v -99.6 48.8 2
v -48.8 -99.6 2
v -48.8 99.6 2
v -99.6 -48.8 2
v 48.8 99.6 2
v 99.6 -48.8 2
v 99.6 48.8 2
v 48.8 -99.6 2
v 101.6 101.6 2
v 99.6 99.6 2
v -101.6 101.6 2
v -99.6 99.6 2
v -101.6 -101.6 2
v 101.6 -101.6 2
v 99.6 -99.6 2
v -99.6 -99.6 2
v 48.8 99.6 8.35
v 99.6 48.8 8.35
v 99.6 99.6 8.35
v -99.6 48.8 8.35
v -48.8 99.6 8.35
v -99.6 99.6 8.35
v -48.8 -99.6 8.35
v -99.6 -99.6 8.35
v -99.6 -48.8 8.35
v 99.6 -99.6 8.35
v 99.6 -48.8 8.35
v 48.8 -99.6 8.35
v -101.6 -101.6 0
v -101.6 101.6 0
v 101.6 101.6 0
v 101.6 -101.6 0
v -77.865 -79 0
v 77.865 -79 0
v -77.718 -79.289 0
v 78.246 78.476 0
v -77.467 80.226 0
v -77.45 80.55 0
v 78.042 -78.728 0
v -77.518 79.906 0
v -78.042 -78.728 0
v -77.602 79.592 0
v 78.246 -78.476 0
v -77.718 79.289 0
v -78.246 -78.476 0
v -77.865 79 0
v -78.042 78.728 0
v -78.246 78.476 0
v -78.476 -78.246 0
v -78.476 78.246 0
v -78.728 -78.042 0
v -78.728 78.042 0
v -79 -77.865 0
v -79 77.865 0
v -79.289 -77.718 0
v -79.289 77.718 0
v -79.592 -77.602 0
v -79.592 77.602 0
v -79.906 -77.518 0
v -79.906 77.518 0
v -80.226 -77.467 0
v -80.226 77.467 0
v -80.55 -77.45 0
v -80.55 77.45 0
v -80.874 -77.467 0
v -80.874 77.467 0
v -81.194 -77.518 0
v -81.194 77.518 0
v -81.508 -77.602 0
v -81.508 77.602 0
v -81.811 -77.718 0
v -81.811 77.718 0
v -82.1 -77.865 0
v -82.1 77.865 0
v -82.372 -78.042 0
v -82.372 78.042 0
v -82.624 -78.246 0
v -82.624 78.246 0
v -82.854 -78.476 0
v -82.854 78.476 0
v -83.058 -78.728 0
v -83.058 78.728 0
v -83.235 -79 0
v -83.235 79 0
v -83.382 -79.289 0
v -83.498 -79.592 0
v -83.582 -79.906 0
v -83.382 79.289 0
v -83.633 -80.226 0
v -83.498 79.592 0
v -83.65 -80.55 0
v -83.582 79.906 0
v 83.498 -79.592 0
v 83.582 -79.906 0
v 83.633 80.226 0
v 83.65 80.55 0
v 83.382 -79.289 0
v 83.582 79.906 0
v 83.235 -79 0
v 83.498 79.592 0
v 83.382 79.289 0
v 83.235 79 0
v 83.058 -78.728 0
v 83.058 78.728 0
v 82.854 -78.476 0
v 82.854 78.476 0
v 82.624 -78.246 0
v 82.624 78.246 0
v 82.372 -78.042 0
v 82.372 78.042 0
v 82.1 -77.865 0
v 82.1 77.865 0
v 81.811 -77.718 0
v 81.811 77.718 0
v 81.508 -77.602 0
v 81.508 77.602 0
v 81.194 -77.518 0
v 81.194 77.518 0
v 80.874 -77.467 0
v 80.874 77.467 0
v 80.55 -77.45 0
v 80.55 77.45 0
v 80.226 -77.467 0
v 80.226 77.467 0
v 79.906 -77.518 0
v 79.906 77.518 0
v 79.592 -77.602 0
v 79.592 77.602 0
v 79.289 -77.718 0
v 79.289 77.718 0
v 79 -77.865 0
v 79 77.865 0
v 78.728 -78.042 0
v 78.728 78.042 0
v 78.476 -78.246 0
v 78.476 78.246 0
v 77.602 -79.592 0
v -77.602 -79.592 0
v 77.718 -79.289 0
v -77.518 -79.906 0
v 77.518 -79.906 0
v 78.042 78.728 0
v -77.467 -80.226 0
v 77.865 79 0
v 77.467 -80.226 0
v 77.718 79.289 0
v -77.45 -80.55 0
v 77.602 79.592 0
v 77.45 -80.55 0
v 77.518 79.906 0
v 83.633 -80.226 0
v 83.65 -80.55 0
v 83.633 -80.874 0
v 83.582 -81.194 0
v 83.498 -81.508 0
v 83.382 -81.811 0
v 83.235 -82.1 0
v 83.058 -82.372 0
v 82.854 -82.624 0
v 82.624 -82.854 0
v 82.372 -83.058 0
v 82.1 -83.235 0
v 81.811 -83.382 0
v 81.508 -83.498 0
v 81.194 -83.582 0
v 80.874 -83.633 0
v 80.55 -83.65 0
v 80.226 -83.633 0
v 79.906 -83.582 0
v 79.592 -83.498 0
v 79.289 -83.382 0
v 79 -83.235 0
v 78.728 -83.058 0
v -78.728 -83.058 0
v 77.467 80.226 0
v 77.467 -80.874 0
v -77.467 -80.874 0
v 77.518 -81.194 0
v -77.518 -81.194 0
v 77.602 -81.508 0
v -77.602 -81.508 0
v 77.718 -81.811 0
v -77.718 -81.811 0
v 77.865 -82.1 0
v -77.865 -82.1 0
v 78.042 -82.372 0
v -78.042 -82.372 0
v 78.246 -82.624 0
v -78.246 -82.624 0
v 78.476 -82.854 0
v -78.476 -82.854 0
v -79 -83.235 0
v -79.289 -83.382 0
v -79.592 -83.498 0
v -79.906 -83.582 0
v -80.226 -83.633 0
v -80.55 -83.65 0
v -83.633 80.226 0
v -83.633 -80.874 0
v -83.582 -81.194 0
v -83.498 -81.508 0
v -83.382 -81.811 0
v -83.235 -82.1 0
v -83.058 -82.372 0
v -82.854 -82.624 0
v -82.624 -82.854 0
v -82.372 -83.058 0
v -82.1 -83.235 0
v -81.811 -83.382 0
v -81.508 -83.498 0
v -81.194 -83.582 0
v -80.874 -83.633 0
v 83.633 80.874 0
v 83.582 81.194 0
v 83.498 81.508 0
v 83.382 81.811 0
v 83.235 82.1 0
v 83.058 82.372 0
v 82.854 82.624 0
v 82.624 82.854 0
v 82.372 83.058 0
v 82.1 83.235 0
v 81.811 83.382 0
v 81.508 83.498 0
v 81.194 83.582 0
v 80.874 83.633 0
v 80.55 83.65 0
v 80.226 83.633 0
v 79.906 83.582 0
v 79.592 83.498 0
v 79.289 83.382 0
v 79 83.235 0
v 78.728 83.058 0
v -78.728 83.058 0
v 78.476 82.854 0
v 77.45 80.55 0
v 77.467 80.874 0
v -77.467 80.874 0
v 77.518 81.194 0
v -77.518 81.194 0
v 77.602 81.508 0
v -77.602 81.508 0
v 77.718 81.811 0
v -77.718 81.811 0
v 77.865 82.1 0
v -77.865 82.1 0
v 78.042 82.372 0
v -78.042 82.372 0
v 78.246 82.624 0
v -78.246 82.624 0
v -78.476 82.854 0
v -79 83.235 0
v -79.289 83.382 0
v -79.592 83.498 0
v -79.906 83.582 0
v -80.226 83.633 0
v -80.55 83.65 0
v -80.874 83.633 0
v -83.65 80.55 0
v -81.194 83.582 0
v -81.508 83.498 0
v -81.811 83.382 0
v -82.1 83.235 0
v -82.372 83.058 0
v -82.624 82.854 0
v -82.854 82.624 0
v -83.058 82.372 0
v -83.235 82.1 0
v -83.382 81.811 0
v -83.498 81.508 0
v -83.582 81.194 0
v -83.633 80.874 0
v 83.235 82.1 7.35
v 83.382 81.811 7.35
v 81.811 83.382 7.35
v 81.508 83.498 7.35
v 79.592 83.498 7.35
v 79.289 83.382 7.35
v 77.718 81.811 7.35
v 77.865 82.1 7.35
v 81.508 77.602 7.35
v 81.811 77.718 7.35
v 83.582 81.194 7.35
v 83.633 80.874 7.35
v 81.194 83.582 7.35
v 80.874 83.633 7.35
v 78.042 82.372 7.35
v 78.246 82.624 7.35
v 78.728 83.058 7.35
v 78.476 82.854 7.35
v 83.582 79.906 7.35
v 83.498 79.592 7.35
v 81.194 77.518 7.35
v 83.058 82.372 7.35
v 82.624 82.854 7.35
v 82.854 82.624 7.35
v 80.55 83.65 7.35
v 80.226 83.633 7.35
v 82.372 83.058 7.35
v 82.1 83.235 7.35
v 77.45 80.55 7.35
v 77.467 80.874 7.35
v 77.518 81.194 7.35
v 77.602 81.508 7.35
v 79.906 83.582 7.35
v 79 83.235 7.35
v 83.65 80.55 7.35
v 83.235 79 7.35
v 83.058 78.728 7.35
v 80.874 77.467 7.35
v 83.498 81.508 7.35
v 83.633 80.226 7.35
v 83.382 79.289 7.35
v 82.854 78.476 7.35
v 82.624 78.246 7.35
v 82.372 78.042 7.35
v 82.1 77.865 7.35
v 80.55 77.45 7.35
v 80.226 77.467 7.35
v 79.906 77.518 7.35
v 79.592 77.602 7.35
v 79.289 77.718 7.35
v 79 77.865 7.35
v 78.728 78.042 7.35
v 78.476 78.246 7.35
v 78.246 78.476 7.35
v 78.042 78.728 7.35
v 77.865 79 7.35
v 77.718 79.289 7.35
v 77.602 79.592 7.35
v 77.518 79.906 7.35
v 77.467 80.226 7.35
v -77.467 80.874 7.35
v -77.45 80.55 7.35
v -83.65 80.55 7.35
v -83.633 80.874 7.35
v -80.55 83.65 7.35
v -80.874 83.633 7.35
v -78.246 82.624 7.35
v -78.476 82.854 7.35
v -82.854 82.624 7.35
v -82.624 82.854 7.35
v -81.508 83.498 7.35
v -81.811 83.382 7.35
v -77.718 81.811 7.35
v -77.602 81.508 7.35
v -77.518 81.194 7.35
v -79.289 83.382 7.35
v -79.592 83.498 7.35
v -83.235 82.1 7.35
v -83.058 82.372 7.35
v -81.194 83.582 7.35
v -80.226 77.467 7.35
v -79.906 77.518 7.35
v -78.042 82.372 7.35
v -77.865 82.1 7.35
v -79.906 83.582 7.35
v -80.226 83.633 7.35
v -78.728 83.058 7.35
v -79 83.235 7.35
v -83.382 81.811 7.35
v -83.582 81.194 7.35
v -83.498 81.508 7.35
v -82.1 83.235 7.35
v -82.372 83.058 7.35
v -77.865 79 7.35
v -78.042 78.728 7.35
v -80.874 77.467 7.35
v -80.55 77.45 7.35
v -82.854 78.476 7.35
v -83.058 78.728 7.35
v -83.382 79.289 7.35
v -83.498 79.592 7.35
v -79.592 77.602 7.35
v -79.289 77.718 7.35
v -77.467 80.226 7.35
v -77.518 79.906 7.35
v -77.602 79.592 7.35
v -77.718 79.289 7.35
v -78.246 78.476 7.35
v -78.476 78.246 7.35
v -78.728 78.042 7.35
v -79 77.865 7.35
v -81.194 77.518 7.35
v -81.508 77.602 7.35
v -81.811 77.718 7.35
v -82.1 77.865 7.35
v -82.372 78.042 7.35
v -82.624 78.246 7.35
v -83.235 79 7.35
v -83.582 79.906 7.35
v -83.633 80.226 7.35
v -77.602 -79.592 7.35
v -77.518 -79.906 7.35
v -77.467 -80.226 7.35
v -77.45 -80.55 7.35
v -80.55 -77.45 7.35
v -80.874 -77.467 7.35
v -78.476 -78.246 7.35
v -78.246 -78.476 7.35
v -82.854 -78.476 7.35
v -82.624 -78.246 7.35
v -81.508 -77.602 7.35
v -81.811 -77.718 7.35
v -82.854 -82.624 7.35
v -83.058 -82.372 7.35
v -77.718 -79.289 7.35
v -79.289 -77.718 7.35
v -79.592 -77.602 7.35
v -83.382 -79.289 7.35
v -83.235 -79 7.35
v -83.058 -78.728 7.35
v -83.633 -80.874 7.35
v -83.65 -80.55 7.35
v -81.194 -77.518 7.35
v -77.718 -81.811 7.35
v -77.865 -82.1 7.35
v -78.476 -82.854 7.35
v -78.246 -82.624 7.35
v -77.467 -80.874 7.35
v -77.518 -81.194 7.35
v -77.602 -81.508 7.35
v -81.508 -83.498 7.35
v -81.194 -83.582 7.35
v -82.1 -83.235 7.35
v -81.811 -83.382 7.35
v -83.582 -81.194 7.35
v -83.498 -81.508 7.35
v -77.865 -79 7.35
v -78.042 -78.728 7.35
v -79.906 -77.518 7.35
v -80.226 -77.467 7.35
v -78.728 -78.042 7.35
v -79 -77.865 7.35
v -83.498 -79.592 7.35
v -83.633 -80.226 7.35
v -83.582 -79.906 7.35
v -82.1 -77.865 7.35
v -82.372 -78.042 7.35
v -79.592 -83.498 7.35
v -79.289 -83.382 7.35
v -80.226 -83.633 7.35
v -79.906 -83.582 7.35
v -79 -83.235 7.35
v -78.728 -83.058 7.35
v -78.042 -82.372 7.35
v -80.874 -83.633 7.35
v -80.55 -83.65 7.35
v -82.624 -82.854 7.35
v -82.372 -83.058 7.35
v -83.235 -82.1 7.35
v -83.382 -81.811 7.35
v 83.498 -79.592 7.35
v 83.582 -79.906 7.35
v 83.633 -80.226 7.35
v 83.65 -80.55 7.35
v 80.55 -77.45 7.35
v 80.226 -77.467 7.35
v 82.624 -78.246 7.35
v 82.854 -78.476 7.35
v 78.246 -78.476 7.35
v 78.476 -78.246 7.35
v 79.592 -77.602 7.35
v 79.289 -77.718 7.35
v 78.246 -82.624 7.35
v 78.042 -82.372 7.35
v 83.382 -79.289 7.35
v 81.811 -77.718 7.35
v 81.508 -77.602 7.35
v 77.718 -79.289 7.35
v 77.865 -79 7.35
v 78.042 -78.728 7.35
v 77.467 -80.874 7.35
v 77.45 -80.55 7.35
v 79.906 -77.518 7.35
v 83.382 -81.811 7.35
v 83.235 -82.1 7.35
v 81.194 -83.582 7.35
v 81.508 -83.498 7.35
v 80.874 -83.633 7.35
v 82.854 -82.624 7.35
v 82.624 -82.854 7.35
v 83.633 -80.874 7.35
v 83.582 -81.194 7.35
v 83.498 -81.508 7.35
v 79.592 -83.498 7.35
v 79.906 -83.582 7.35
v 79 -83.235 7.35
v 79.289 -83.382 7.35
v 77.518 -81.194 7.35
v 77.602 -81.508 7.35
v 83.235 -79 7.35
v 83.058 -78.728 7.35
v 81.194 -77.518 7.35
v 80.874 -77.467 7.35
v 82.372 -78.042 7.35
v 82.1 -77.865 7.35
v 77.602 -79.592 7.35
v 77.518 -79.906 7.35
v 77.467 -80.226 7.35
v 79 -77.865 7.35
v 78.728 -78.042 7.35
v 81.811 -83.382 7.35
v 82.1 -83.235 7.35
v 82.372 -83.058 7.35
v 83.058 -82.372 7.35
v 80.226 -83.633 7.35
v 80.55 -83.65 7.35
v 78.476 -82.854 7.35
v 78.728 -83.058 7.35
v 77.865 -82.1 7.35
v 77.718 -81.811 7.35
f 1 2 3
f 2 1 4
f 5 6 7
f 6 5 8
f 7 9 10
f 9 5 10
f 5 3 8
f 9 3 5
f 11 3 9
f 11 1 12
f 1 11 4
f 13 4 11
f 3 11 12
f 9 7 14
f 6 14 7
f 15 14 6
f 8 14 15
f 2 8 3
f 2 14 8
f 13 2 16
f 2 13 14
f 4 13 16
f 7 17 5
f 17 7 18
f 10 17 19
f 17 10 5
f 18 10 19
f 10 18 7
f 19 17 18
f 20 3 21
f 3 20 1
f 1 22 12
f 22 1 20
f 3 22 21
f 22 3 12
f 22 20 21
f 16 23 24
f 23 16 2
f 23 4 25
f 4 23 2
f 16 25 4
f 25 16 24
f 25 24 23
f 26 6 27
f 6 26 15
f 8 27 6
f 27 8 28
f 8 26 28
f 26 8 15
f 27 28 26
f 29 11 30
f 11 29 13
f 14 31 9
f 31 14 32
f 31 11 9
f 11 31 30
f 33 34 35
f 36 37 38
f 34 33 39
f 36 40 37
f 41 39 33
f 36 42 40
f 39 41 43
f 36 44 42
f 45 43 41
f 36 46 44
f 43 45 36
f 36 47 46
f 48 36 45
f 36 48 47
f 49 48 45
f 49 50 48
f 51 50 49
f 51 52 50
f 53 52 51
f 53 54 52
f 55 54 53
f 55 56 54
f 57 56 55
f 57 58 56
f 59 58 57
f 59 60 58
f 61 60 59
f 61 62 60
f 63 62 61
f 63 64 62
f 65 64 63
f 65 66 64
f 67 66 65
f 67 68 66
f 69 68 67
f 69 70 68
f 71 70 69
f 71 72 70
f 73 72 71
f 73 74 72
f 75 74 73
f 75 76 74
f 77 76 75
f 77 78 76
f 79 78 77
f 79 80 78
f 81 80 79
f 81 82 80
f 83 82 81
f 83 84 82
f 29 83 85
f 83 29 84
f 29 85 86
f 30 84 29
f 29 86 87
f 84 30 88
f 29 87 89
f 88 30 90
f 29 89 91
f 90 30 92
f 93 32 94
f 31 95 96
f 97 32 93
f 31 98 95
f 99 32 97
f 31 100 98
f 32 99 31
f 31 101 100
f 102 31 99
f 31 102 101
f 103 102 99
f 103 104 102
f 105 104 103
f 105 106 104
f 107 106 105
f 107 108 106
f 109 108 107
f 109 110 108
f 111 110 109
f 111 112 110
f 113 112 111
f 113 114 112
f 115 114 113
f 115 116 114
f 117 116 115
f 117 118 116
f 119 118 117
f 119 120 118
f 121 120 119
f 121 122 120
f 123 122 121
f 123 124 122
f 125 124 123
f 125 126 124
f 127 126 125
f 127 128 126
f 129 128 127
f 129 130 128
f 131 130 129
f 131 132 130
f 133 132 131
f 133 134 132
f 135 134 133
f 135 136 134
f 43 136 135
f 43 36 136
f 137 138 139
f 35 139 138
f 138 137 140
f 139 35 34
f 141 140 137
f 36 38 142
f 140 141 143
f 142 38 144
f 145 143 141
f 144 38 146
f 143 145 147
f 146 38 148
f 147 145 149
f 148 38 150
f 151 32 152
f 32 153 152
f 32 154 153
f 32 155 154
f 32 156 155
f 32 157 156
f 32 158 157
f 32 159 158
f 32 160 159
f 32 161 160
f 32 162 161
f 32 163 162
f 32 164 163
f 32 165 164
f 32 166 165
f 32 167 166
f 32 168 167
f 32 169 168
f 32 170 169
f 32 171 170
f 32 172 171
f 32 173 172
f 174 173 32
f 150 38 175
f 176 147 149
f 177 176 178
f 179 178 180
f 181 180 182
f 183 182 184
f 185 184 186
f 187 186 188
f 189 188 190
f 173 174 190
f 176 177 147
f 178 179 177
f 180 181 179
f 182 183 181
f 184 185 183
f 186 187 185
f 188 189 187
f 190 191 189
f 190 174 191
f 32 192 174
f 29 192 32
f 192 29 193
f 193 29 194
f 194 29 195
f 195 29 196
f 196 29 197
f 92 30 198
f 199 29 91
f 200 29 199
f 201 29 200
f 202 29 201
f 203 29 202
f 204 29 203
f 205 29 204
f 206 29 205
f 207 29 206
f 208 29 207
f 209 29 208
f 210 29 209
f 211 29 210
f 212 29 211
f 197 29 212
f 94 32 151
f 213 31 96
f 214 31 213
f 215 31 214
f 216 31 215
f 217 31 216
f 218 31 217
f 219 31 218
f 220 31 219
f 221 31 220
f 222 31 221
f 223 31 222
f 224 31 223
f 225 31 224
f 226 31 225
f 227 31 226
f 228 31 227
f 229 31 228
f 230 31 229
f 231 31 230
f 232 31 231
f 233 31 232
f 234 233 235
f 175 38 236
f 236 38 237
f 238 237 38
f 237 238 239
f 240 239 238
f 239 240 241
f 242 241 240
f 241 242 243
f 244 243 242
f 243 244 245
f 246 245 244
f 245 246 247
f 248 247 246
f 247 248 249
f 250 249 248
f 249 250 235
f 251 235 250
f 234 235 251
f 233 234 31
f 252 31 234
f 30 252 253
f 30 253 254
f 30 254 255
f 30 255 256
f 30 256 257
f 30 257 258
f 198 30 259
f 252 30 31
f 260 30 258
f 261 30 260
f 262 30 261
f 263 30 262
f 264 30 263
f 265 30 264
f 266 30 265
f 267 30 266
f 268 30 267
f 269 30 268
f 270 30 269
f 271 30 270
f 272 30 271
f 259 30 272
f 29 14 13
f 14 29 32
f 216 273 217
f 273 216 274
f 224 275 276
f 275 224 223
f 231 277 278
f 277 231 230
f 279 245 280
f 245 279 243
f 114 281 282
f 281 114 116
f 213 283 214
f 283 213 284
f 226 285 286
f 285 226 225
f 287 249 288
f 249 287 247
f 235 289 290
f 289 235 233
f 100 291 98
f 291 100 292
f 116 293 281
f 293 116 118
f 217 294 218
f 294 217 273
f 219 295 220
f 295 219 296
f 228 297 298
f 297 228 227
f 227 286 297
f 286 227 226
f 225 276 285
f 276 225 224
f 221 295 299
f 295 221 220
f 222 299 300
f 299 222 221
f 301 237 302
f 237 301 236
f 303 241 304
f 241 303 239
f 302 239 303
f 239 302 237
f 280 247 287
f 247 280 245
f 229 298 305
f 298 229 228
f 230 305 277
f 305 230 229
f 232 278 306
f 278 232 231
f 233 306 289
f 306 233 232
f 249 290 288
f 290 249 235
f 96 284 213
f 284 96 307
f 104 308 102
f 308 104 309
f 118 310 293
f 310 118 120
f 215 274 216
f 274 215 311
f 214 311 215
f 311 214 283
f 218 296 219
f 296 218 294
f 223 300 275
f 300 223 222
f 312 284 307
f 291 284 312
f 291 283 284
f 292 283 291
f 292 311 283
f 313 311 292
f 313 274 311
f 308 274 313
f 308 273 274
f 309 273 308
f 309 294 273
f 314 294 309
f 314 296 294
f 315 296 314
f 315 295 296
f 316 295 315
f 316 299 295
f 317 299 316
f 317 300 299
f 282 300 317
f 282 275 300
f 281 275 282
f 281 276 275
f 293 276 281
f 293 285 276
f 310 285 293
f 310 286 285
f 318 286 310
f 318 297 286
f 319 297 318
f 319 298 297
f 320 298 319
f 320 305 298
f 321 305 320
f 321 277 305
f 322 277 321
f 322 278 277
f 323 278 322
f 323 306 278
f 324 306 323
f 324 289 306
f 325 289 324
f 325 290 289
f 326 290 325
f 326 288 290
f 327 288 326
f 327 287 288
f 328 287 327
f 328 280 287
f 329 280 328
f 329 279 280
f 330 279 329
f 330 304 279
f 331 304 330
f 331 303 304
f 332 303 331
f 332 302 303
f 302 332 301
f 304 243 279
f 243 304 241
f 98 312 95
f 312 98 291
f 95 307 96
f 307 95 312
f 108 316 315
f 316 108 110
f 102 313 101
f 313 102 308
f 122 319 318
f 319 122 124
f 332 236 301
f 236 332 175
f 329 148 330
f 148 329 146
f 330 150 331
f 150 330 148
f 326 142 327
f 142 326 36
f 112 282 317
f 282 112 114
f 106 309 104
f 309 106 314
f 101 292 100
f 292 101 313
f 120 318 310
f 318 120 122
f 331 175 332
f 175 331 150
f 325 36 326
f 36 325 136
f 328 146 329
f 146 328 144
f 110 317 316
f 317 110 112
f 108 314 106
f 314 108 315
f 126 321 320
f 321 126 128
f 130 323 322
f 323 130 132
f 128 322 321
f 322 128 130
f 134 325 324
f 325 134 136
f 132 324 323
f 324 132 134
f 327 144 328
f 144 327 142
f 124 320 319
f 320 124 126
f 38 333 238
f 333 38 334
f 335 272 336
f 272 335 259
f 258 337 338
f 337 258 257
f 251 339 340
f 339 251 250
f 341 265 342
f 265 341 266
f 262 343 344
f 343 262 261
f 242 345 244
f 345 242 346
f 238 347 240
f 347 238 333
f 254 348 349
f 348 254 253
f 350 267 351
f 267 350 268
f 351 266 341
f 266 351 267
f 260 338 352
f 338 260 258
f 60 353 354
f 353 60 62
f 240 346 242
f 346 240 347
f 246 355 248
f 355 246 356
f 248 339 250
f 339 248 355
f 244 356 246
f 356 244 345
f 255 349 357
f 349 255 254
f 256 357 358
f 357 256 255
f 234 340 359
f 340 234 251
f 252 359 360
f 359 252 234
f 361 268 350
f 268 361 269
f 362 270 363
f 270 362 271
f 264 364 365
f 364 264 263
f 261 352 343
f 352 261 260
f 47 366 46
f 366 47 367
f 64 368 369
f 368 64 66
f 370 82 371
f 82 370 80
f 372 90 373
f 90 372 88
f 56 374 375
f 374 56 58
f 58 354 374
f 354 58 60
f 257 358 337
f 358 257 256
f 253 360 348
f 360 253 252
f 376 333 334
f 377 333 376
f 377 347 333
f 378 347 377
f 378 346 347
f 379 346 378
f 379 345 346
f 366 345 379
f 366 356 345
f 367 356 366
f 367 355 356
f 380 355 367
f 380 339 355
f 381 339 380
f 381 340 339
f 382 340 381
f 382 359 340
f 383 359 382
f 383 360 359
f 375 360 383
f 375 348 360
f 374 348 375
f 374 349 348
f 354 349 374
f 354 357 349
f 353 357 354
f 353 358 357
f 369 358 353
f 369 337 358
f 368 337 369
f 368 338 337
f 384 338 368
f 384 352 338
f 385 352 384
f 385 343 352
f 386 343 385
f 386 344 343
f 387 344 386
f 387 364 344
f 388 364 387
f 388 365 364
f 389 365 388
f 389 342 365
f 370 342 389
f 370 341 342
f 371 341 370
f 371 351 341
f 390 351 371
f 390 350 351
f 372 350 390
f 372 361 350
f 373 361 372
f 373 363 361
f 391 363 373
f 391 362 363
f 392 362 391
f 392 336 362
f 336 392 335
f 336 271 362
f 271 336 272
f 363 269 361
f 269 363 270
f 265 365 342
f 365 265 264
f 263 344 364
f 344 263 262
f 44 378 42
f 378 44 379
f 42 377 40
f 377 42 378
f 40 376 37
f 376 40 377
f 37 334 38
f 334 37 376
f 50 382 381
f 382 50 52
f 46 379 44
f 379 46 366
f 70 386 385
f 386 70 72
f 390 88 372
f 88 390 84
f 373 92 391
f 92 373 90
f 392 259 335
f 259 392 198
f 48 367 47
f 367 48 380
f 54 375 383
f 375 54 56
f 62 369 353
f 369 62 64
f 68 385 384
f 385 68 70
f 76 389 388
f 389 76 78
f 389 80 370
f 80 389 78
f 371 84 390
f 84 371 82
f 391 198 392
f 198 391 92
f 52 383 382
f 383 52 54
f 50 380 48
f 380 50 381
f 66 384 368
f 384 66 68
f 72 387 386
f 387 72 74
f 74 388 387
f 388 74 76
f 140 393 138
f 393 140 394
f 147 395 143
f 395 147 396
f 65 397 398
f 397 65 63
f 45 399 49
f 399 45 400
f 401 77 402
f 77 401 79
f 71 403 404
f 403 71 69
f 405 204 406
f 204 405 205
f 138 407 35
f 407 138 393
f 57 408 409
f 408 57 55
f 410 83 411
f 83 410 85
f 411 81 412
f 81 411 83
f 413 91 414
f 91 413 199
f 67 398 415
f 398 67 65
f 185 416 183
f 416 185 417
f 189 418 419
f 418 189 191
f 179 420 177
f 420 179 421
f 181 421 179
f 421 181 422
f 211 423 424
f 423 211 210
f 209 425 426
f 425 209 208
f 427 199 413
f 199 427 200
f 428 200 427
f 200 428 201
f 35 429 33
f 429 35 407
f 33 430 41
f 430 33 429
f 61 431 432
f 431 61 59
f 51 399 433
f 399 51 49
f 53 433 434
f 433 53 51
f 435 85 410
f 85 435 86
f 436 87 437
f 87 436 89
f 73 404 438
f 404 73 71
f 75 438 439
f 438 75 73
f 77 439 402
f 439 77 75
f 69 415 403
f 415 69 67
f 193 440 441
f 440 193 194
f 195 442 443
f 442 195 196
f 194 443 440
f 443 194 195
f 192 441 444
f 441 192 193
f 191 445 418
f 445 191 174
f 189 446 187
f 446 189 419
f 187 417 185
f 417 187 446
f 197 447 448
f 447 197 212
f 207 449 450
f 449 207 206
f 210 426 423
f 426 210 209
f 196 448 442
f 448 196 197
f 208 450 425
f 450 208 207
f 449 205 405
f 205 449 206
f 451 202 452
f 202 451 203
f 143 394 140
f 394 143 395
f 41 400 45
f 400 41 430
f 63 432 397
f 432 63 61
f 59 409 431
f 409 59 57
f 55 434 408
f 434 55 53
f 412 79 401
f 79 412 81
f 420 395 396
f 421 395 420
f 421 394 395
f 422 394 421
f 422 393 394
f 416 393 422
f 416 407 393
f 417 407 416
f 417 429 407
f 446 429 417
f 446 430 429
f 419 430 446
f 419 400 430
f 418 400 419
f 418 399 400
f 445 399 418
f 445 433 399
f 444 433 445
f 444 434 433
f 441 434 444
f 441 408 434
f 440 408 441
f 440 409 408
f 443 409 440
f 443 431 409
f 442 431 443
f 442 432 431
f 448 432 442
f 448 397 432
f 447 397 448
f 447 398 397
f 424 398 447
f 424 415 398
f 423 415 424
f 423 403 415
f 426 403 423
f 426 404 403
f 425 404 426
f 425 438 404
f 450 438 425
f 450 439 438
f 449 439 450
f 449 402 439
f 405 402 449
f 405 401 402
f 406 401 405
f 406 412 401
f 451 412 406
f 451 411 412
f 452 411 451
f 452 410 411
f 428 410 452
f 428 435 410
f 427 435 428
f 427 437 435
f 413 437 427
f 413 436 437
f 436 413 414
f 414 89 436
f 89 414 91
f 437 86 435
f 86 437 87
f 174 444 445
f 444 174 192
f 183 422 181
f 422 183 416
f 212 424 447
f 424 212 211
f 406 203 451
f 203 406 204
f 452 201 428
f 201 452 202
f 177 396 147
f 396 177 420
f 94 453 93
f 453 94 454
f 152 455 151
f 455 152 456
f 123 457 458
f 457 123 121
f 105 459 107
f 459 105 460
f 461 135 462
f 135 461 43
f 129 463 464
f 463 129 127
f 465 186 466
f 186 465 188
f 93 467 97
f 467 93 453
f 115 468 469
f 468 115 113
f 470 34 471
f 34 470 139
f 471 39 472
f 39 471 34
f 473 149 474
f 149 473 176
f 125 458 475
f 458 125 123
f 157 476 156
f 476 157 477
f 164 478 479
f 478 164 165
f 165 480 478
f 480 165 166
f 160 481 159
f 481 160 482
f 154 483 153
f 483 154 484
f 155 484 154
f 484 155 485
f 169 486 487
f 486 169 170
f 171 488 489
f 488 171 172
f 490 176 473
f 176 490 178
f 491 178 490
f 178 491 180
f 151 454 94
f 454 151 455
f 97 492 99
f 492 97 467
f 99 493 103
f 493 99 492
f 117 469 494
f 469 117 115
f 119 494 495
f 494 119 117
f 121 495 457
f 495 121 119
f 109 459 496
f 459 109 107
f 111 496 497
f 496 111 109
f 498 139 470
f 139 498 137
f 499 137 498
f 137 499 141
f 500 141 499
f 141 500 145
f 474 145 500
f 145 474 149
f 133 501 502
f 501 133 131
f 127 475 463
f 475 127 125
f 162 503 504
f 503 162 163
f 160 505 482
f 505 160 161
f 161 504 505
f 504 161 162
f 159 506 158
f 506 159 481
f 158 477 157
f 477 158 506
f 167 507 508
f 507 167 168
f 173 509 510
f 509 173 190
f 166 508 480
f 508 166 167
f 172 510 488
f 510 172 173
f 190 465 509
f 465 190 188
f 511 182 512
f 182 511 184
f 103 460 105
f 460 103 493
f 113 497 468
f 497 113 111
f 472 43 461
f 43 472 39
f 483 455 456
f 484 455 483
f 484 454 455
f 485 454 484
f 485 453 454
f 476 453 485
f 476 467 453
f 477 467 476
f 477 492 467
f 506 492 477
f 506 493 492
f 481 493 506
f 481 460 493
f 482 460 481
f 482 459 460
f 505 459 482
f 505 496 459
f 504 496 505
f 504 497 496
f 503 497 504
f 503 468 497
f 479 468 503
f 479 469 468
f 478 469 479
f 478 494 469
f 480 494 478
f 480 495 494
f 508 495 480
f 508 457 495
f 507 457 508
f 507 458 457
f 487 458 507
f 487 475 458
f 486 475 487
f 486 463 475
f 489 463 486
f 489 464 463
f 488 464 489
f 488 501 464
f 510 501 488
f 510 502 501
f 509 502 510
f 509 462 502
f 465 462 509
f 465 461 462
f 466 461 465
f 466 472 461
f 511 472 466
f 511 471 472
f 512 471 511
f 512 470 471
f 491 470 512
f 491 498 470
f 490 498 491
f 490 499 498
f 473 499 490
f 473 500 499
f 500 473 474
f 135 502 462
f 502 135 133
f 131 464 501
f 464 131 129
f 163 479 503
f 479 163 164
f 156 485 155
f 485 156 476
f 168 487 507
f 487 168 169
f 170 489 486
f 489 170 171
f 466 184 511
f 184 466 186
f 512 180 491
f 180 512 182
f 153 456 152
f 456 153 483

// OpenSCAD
// All-Seeing Eye - Base Plate
// Version: 1.1 
// Changes: Widen plate to match full base_width (bottom mount). Taller tabs to compensate.

/* [Global Dimensions] */
INCH = 25.4;

base_width = 8.0 * INCH;
plate_thickness = 2.0;
wall_thickness = 2.0;

// Alignment Tabs
// Plate is external. Tabs project up into the shell.
// Shell block starts at 0.25 inch.
tab_height = 0.25 * INCH; 

total_height = plate_thickness + tab_height;

// Magnet logic
magnet_diam = 6.2; // 6mm + tolerance
magnet_load_depth = total_height - 1.0; // Hole depth from bottom, leaving 1mm bridge at top

/* [Rendering] */
$fn = 60;

module base_plate_main() {
    
    // Plate is now full width, so no tolerance needed relative to wall INTERIOR.
    // However, we might want a tiny tolerance if it needs to fit... 
    // but user asked for "full width of the pyramid's outer edge".
    plate_w = base_width;
    
    difference() {
        // 1. Positive Volume
        union() {
            // A. Base Plate (Full Width)
            translate([0, 0, plate_thickness/2])
                cube([plate_w, plate_w, plate_thickness], center=true);
            
            // B. Alignment Tabs (Corner Triangles)
            // They sit on top of the plate (starts at z = plate_thickness)
            translate([0, 0, plate_thickness])
                alignment_tabs();
        }

        // 2. Negative Volume (Magnet Holes)
        // Access from BOTTOM (z=0)
        magnet_holes();
    }
}

module alignment_tabs() {
    // Generate 4 corner triangles
    // They fit INSIDE the shell walls.
    
    // Offset must still be calculated based on the INTERIOR wall position
    offset_dist = base_width/2 - wall_thickness; // Corner of the inner void
    
    // Triangle size
    tri_leg = 2.0 * INCH;
    
    // Corner 1 (+X, +Y)
    translate([offset_dist, offset_dist, 0]) rotate([0,0,180]) corner_triangle(tri_leg, tab_height);
    
    // Corner 2 (-X, +Y)
    translate([-offset_dist, offset_dist, 0]) rotate([0,0,-90]) corner_triangle(tri_leg, tab_height);
    
    // Corner 3 (-X, -Y)
    translate([-offset_dist, -offset_dist, 0]) rotate([0,0,0]) corner_triangle(tri_leg, tab_height);
    
    // Corner 4 (+X, -Y)
    translate([offset_dist, -offset_dist, 0]) rotate([0,0,90]) corner_triangle(tri_leg, tab_height);
}

module corner_triangle(leg, h) {
    // Right isosceles triangle in the corner
    linear_extrude(h) {
        polygon([
            [0,0], 
            [leg, 0], 
            [0, leg]
        ]);
    }
}

module magnet_holes() {
    // Positions must match the center of mass of the triangles or close to the corner
    offset_dist = base_width/2 - wall_thickness; 
    tri_leg = 2.0 * INCH;
    
    // Magnet position
    mag_offset = 0.75 * INCH;
    
    // Calculate global positions relative to center
    px = offset_dist - mag_offset;
    py = offset_dist - mag_offset;
    
    hole_depth = magnet_load_depth;
    
    positions = [
        [px, py],   // Top Right
        [-px, py],  // Top Left
        [-px, -py], // Bottom Left
        [px, -py]   // Bottom Right
    ];
    
    for(pos = positions) {
        translate([pos[0], pos[1], -0.1])
            cylinder(h = hole_depth + 0.1, d = magnet_diam); // +0.1 for clean cut
    }
}

base_plate_main();
